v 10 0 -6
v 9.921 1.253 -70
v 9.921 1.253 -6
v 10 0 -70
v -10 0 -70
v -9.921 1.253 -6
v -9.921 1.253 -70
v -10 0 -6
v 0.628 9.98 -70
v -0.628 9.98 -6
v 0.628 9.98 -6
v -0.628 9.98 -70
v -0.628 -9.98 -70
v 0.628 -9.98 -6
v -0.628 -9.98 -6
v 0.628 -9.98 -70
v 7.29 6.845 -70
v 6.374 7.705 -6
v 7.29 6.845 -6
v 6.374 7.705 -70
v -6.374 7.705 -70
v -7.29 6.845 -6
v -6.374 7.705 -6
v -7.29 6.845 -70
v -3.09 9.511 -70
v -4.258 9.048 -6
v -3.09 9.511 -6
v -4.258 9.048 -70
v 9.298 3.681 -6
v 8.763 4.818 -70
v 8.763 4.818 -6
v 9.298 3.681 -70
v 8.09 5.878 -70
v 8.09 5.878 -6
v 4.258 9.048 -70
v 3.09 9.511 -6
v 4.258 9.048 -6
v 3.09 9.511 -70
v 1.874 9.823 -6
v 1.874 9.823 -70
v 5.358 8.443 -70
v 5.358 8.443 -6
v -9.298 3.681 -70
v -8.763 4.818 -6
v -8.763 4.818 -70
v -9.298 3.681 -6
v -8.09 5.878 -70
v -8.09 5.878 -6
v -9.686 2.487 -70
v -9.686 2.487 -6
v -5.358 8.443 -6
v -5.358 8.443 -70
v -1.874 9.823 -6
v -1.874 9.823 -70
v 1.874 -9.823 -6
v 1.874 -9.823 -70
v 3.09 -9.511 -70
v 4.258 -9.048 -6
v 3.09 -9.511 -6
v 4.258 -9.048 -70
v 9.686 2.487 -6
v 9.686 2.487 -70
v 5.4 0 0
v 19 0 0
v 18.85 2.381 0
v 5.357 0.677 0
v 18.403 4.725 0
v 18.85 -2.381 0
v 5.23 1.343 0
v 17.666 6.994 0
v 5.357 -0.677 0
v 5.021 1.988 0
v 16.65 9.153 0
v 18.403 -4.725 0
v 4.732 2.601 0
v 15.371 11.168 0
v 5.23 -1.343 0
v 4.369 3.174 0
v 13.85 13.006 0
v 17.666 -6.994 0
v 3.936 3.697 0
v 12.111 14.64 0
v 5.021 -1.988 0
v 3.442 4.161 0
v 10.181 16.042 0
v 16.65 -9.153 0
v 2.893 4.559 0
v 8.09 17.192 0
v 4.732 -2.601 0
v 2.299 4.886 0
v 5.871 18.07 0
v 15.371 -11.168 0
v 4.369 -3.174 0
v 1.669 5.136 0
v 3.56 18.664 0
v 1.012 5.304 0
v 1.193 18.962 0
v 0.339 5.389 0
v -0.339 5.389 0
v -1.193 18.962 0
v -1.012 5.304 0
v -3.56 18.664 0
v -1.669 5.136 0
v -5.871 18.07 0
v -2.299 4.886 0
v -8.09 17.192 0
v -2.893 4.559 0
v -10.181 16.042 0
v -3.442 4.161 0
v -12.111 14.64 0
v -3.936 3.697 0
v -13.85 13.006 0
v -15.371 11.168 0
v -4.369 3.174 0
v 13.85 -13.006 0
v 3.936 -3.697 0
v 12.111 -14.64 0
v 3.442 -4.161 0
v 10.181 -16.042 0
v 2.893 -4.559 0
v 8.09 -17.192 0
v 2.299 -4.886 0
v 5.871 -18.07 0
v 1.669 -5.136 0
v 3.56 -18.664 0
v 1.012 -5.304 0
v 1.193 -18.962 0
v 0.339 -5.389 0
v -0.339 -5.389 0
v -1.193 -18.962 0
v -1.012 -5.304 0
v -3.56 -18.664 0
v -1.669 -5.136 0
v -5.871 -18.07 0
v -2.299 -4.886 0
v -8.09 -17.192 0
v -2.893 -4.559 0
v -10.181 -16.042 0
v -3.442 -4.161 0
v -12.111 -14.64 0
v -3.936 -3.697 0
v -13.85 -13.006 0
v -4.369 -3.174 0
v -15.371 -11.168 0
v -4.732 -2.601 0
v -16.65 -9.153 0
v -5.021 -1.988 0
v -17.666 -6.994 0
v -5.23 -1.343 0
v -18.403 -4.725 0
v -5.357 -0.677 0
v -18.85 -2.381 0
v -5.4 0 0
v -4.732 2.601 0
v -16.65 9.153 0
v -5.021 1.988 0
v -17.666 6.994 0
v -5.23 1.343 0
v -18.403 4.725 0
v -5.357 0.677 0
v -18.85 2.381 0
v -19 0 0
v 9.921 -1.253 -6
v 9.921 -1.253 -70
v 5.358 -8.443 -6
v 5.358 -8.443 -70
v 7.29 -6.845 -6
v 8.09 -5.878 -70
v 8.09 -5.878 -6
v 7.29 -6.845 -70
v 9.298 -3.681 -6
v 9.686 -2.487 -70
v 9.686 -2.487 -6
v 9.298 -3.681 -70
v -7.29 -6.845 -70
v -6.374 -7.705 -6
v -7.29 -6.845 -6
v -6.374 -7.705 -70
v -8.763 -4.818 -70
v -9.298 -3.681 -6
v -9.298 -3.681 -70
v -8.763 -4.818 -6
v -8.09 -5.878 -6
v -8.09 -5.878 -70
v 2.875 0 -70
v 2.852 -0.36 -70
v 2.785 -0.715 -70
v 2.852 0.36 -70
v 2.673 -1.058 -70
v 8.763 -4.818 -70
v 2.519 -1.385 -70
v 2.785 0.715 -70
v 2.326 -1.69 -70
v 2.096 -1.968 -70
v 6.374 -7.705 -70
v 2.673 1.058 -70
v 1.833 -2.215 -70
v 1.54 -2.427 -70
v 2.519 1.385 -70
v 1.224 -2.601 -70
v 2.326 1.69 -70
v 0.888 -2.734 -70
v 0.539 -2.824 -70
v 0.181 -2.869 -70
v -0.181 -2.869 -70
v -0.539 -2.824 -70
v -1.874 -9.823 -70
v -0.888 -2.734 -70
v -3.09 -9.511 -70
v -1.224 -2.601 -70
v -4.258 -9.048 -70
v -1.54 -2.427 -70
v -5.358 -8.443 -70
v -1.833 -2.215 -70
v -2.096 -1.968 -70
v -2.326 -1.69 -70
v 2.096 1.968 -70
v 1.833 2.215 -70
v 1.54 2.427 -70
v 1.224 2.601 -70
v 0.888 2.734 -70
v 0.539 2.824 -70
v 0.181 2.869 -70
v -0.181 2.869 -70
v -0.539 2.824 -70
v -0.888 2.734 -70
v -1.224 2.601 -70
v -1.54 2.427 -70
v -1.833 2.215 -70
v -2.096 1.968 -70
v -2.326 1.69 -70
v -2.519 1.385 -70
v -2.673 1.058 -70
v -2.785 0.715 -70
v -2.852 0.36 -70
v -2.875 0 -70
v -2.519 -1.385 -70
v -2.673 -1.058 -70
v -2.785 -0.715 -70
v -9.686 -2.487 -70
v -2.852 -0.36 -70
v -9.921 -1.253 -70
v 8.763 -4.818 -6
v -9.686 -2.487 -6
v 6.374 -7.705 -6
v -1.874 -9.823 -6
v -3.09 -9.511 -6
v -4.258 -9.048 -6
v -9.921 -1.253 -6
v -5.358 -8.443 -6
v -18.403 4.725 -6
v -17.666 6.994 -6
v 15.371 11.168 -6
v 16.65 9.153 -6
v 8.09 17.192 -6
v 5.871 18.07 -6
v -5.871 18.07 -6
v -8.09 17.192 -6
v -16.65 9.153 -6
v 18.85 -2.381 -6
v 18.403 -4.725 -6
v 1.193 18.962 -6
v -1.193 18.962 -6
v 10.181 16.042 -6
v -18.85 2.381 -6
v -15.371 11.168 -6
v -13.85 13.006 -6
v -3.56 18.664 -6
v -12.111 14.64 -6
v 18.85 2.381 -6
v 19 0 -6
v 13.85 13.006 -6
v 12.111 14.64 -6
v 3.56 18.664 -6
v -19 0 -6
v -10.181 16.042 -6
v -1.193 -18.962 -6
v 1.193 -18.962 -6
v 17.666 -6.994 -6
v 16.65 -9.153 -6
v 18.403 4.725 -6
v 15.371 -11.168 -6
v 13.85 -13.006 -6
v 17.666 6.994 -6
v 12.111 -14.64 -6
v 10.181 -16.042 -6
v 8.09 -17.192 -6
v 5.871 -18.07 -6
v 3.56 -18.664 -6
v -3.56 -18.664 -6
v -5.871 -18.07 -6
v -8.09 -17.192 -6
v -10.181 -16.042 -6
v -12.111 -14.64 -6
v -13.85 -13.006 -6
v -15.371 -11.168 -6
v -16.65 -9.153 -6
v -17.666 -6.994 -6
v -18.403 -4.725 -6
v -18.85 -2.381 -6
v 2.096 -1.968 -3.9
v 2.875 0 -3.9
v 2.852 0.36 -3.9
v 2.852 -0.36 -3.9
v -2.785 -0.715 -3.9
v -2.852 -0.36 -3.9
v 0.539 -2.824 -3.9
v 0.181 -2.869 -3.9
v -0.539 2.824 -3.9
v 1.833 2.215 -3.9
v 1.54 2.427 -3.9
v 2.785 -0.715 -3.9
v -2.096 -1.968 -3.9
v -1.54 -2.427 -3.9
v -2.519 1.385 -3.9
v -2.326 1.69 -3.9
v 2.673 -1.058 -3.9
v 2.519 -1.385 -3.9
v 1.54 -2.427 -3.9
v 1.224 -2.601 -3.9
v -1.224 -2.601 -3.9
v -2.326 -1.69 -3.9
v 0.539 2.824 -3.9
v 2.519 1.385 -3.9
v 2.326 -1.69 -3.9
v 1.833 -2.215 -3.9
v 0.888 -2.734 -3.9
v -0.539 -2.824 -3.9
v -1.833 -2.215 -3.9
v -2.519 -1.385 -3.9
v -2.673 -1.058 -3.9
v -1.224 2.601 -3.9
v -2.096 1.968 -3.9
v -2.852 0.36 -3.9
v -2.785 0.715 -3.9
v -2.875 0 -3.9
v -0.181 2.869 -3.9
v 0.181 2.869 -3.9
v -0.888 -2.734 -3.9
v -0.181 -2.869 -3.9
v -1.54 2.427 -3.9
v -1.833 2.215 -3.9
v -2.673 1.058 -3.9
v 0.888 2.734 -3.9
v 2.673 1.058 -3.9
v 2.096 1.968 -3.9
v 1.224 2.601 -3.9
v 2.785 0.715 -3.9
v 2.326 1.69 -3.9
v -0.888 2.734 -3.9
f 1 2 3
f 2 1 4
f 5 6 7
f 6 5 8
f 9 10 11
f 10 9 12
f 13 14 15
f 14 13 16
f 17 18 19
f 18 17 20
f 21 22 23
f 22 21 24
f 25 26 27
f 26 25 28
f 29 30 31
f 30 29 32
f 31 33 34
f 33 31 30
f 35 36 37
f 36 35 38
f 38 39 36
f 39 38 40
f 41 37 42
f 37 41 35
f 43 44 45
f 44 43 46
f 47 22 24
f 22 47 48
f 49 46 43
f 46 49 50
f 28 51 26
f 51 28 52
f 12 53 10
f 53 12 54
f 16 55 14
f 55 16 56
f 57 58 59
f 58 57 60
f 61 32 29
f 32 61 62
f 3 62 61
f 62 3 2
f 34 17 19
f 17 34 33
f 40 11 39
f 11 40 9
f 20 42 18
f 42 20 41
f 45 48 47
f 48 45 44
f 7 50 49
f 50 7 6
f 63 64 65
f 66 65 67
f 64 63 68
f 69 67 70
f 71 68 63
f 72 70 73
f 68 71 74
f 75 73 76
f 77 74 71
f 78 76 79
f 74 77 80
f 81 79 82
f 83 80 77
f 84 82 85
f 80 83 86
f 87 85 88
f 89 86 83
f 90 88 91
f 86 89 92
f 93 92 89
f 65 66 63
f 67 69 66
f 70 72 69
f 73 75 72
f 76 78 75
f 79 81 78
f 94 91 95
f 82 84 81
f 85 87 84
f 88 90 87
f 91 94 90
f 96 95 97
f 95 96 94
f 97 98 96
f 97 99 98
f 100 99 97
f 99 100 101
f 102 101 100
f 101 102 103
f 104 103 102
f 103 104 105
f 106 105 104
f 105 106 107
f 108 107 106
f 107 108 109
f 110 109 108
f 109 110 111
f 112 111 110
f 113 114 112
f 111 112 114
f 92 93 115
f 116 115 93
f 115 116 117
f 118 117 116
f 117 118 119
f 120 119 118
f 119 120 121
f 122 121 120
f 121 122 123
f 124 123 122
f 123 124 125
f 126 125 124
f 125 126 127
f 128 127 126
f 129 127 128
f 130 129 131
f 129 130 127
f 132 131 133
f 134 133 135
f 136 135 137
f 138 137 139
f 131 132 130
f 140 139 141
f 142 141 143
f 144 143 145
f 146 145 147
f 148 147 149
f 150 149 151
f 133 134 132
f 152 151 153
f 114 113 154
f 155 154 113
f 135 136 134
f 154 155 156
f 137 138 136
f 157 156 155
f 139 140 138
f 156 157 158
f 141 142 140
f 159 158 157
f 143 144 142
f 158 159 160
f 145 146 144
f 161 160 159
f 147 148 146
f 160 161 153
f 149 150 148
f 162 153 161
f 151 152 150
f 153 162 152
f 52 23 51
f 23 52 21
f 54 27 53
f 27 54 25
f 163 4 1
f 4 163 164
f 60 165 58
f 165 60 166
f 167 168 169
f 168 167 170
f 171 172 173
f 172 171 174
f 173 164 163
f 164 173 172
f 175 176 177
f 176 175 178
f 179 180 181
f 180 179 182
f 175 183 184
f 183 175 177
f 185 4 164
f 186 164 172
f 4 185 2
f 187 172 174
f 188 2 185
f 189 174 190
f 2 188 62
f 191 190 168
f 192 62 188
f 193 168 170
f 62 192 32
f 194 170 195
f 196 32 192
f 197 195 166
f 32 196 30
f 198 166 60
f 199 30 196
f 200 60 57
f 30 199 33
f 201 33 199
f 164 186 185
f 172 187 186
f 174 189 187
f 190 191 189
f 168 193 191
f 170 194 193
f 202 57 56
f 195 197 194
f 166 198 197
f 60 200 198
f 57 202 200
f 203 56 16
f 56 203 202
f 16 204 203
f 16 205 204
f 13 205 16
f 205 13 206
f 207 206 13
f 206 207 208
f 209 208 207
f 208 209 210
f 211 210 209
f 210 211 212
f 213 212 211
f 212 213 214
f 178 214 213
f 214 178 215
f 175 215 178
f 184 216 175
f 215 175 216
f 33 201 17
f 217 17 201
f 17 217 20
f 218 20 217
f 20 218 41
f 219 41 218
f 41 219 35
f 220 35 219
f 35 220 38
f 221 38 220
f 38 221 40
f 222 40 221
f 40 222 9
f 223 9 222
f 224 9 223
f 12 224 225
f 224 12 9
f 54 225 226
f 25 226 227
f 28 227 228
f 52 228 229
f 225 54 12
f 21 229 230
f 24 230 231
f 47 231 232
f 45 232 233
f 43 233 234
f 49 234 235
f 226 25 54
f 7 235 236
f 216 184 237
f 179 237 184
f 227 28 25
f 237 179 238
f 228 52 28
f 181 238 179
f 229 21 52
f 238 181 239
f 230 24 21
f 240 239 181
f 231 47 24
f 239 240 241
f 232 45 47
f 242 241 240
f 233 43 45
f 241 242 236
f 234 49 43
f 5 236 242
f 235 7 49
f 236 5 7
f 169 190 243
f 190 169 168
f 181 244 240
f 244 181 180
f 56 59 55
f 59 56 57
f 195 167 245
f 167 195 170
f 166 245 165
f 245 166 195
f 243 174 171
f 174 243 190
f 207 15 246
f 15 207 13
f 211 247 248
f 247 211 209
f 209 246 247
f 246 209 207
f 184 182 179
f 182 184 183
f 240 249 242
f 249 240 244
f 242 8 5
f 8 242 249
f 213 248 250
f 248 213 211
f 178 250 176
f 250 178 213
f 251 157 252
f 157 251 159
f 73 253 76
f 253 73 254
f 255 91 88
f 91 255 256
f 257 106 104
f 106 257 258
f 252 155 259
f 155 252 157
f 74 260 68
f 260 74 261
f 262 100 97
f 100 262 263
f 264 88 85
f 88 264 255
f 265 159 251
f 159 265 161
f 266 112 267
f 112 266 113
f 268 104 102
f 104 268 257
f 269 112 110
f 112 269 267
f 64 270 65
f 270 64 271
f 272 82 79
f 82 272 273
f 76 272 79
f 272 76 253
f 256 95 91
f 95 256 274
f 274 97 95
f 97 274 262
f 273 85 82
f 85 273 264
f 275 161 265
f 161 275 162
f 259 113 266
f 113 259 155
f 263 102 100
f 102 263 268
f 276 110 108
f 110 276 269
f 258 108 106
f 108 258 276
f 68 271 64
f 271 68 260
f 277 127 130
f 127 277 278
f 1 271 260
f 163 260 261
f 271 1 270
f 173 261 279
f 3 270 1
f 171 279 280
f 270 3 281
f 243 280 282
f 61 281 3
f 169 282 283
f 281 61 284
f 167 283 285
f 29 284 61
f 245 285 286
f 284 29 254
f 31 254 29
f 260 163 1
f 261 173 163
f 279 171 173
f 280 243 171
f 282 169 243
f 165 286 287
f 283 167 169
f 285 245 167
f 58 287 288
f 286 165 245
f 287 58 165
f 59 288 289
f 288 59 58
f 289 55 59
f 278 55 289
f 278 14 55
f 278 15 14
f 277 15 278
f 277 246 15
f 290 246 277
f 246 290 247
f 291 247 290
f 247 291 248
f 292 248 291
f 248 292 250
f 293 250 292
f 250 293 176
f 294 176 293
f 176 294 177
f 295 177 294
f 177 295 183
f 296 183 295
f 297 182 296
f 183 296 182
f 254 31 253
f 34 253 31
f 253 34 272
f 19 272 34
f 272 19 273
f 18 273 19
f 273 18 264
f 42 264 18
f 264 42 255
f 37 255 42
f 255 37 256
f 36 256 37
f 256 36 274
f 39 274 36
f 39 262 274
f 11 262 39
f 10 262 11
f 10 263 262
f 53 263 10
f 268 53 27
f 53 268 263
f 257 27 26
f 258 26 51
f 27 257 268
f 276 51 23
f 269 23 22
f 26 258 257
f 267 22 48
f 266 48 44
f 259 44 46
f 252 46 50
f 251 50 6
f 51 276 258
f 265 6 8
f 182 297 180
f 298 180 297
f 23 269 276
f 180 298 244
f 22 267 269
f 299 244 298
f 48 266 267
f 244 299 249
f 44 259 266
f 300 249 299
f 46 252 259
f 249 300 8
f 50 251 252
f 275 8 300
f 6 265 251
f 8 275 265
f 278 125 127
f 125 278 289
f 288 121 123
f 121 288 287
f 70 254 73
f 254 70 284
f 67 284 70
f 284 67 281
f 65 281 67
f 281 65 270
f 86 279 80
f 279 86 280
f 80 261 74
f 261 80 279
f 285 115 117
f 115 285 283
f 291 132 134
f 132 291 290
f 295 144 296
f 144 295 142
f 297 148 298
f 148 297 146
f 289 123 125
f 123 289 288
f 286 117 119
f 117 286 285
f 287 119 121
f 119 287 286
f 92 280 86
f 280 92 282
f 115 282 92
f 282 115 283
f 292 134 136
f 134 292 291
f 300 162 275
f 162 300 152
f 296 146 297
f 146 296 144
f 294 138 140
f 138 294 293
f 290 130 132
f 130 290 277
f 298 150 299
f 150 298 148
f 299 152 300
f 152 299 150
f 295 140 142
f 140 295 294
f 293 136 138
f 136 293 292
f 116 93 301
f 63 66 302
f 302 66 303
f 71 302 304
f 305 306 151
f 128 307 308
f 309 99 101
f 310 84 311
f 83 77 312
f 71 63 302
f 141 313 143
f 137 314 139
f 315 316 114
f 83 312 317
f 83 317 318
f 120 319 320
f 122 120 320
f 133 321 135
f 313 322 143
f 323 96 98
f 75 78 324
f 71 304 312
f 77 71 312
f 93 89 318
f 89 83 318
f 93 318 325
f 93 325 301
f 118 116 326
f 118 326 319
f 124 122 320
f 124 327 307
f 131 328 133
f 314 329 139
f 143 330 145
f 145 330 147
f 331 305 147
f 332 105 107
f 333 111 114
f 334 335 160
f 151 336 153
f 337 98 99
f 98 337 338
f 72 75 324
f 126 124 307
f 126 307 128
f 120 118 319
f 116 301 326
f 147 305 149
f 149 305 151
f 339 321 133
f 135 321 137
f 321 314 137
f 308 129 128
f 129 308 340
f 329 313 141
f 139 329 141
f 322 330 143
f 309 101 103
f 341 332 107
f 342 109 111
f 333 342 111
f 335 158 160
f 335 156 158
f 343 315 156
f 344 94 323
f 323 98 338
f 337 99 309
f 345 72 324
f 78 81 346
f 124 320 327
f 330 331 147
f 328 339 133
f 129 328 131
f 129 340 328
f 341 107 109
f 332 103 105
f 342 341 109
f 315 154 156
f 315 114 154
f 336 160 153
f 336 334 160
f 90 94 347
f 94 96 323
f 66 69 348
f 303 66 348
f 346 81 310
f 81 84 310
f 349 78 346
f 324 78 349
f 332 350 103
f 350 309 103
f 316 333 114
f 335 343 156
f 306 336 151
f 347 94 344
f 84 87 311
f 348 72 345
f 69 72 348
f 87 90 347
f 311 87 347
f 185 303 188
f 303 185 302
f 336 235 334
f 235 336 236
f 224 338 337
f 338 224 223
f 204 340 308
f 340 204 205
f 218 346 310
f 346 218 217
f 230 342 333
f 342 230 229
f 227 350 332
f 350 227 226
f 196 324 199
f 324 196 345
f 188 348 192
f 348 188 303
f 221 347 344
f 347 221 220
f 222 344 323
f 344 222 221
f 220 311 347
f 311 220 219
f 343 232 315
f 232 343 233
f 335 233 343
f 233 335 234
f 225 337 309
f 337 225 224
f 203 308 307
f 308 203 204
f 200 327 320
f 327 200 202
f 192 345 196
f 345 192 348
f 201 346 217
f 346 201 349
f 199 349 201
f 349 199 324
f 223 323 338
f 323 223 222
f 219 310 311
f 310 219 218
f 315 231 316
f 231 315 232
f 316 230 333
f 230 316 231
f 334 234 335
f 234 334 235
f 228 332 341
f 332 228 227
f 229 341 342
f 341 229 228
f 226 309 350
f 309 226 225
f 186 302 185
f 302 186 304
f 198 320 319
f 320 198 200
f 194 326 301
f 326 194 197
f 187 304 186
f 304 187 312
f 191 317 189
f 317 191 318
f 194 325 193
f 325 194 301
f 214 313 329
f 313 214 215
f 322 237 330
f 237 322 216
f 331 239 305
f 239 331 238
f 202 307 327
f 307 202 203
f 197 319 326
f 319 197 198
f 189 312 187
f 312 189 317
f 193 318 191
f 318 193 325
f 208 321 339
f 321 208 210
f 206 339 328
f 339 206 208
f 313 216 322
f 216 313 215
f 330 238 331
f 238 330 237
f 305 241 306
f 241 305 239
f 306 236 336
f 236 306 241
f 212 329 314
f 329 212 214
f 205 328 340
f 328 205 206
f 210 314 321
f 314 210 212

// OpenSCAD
$fn = 50;


difference() {
	union() {
		translate(v = [0, 0, -70.0000000000]) {
			cylinder(h = 70, r = 10.0000000000);
		}
		translate(v = [0, 0, -6.0000000000]) {
			cylinder(h = 6, r = 19.0000000000);
		}
	}
	union() {
		translate(v = [0, 0, 0]) {
			rotate(a = [0, 0, 0]) {
				difference() {
					union() {
						#translate(v = [0, 0, -70.0000000000]) {
							cylinder(h = 70, r = 2.6000000000);
						}
						#translate(v = [0, 0, -3.9000000000]) {
							cylinder(h = 3.9000000000, r1 = 2.8750000000, r2 = 5.4000000000);
						}
						#translate(v = [0, 0, -70.0000000000]) {
							cylinder(h = 70, r = 2.8750000000);
						}
						#translate(v = [0, 0, -70.0000000000]) {
							cylinder(h = 70, r = 2.6000000000);
						}
					}
					union();
				}
			}
		}
	}
}
